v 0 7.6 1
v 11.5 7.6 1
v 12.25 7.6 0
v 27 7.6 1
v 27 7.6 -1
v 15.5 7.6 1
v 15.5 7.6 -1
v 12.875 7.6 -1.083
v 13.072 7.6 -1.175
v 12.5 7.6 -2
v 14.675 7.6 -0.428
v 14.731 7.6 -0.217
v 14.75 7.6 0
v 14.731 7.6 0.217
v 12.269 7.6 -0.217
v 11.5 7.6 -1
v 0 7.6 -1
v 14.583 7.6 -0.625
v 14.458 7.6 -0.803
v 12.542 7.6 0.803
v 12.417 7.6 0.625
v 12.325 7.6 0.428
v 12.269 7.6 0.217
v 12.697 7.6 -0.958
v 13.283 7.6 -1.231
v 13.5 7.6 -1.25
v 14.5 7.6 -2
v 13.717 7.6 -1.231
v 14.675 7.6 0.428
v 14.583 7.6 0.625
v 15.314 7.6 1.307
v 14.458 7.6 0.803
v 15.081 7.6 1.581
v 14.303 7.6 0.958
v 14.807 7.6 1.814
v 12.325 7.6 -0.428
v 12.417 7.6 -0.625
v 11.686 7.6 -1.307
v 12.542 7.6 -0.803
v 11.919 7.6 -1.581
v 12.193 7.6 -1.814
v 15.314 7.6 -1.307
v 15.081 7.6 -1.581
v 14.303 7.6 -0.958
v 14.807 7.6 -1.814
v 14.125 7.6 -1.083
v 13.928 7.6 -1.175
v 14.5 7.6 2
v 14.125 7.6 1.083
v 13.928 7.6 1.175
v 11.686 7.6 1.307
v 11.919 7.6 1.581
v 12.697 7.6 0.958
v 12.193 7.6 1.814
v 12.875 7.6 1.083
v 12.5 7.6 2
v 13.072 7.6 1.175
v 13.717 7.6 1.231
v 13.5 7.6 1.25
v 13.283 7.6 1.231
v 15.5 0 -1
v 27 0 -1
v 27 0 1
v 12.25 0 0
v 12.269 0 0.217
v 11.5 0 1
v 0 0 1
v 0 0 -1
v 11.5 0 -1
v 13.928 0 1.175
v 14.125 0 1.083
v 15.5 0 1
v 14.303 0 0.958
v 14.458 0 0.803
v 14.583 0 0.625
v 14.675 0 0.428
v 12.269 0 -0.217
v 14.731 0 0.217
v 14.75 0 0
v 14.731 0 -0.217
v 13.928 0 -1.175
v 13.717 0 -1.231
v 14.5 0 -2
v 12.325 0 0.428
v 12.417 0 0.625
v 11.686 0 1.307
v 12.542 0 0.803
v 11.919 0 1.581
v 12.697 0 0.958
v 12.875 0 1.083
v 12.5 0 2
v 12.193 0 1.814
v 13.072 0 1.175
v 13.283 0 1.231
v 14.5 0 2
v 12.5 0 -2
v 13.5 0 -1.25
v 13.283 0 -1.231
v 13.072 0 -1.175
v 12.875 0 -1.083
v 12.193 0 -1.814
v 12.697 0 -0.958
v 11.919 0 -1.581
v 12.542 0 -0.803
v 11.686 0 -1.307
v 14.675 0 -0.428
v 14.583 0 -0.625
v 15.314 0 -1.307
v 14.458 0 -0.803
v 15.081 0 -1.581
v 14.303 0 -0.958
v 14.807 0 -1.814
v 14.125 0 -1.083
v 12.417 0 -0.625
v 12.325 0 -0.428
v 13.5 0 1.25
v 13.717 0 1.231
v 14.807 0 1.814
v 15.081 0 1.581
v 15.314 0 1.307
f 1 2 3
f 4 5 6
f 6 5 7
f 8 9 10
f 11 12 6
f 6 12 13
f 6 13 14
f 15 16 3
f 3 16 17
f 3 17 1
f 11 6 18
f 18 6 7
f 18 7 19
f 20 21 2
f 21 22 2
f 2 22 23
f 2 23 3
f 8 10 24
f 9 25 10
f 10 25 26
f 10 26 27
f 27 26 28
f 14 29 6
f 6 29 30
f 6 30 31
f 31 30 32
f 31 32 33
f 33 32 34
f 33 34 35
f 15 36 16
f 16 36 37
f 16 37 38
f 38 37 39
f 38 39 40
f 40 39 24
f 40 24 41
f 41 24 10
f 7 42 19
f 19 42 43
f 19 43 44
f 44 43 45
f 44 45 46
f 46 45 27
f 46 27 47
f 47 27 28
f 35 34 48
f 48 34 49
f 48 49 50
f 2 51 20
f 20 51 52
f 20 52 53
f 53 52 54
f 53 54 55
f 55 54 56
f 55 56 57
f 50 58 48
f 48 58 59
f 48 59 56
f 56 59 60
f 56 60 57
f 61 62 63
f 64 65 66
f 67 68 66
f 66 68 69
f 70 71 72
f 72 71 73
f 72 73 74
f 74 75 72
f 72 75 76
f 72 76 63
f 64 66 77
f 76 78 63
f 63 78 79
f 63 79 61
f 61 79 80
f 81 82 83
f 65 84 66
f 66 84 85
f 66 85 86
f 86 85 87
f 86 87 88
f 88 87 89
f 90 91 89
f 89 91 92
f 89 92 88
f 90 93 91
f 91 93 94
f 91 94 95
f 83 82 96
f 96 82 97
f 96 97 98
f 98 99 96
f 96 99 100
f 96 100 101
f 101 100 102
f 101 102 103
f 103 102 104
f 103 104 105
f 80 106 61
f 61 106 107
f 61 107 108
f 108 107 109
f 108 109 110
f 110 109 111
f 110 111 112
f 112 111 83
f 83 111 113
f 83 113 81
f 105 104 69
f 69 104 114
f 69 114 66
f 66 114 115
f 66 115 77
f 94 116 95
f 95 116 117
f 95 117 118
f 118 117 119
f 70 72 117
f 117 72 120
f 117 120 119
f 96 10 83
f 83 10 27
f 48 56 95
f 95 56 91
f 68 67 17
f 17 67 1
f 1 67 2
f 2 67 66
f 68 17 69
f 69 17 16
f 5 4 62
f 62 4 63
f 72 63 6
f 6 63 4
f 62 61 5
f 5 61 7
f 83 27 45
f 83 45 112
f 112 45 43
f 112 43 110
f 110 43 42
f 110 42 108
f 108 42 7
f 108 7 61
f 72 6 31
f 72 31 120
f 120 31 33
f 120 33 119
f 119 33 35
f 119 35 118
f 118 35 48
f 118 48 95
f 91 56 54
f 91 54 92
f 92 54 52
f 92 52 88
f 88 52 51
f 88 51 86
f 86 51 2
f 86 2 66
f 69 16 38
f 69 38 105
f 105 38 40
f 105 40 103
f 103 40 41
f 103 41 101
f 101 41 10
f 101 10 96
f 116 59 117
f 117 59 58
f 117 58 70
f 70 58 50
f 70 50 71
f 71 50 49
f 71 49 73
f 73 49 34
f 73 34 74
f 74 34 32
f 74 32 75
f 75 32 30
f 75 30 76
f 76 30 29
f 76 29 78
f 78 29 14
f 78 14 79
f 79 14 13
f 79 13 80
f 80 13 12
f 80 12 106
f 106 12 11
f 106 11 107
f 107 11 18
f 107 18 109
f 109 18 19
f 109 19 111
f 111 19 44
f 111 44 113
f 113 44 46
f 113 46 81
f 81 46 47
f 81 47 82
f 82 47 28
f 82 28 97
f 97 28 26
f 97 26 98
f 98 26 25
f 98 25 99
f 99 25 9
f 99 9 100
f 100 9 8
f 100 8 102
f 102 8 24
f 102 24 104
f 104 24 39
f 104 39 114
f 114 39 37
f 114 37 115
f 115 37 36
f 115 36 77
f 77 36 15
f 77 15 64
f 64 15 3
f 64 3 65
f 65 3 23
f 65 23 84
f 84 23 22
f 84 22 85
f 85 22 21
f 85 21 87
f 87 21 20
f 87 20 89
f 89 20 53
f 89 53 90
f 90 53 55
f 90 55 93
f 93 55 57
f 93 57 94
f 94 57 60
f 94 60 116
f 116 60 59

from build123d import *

# Parameters (mm, degrees)
SKETCH1_W                = 11.5
SKETCH1_H                = 7.6
BOSS_EXTRUDE5_DEPTH      = 1
BOSS_EXTRUDE5_2_DEPTH    = 1
SKETCH1_5_W              = 11.5
SKETCH1_5_H              = 7.6
BOSS_EXTRUDE6_DEPTH      = 1
BOSS_EXTRUDE7_DEPTH      = 2
BOSS_EXTRUDE7_DEPTH_BACK = 2
SKETCH1_6_W              = 4
SKETCH1_6_H              = 7.6
SKETCH2_R                = 1.25
CUT_EXTRUDE1_DEPTH       = 9


with BuildPart() as part:
    # Sketch1 → Boss-Extrude5 (new body)
    with BuildSketch(Plane.XY):
        with Locations((5.75, 3.8)):
            Rectangle(SKETCH1_W, SKETCH1_H)
    extrude(amount=BOSS_EXTRUDE5_DEPTH)



with BuildPart() as body_2:
    # Sketch1 → Boss-Extrude5 2 (new body)
    with BuildSketch(Plane.XY):
        with Locations((21.25, 3.8)):
            Rectangle(SKETCH1_W, SKETCH1_H)
    extrude(amount=BOSS_EXTRUDE5_2_DEPTH)


with BuildPart() as part_1:
    add(part.part)

    add(body_2.part)  # Boss-Extrude6 merges body 2
    # Sketch1<5> → Boss-Extrude6 (add)
    with BuildSketch(Plane.XY):
        with Locations((5.75, 3.8)):
            Rectangle(SKETCH1_5_W, SKETCH1_5_H)
        with Locations((21.25, 3.8)):
            Rectangle(SKETCH1_5_W, SKETCH1_5_H)
    extrude(amount=-BOSS_EXTRUDE6_DEPTH)

    # Sketch1<6> → Boss-Extrude7 (add, two sides: drawn at the far end of the back side and taken through both)
    with BuildSketch(Plane.XY.offset(-BOSS_EXTRUDE7_DEPTH_BACK)):
        with Locations((13.5, 3.8)):
            Rectangle(SKETCH1_6_W, SKETCH1_6_H)
    extrude(amount=BOSS_EXTRUDE7_DEPTH + BOSS_EXTRUDE7_DEPTH_BACK)

    # Sketch2 → Cut-Extrude1 (cut)
    with BuildSketch(Plane(origin=(0, 7.6, 0), x_dir=(1, 0, 0), z_dir=(0, 1, 0))):
        with BuildLine():
            Line((12.5, 2), (11.5, 2))
            Line((11.5, 2), (11.5, 1))
            ThreePointArc((11.5, 1), (11.91886117, 1.58113883), (12.5, 2))
        make_face()
        with BuildLine():
            Line((15.5, 2), (14.5, 2))
            ThreePointArc((14.5, 2), (15.08113883, 1.58113883), (15.5, 1))
            Line((15.5, 1), (15.5, 2))
        make_face()
        with BuildLine():
            ThreePointArc((12.5, -2), (11.91886117, -1.58113883), (11.5, -1))
            Line((11.5, -1), (11.5, -2))
            Line((11.5, -2), (12.5, -2))
        make_face()
        with BuildLine():
            Line((15.5, -2), (15.5, -1))
            ThreePointArc((15.5, -1), (15.08113883, -1.58113883), (14.5, -2))
            Line((14.5, -2), (15.5, -2))
        make_face()
        with Locations((13.5, 0)):
            Circle(SKETCH2_R)
    extrude(amount=-CUT_EXTRUDE1_DEPTH, mode=Mode.SUBTRACT)


solid = part_1.part
